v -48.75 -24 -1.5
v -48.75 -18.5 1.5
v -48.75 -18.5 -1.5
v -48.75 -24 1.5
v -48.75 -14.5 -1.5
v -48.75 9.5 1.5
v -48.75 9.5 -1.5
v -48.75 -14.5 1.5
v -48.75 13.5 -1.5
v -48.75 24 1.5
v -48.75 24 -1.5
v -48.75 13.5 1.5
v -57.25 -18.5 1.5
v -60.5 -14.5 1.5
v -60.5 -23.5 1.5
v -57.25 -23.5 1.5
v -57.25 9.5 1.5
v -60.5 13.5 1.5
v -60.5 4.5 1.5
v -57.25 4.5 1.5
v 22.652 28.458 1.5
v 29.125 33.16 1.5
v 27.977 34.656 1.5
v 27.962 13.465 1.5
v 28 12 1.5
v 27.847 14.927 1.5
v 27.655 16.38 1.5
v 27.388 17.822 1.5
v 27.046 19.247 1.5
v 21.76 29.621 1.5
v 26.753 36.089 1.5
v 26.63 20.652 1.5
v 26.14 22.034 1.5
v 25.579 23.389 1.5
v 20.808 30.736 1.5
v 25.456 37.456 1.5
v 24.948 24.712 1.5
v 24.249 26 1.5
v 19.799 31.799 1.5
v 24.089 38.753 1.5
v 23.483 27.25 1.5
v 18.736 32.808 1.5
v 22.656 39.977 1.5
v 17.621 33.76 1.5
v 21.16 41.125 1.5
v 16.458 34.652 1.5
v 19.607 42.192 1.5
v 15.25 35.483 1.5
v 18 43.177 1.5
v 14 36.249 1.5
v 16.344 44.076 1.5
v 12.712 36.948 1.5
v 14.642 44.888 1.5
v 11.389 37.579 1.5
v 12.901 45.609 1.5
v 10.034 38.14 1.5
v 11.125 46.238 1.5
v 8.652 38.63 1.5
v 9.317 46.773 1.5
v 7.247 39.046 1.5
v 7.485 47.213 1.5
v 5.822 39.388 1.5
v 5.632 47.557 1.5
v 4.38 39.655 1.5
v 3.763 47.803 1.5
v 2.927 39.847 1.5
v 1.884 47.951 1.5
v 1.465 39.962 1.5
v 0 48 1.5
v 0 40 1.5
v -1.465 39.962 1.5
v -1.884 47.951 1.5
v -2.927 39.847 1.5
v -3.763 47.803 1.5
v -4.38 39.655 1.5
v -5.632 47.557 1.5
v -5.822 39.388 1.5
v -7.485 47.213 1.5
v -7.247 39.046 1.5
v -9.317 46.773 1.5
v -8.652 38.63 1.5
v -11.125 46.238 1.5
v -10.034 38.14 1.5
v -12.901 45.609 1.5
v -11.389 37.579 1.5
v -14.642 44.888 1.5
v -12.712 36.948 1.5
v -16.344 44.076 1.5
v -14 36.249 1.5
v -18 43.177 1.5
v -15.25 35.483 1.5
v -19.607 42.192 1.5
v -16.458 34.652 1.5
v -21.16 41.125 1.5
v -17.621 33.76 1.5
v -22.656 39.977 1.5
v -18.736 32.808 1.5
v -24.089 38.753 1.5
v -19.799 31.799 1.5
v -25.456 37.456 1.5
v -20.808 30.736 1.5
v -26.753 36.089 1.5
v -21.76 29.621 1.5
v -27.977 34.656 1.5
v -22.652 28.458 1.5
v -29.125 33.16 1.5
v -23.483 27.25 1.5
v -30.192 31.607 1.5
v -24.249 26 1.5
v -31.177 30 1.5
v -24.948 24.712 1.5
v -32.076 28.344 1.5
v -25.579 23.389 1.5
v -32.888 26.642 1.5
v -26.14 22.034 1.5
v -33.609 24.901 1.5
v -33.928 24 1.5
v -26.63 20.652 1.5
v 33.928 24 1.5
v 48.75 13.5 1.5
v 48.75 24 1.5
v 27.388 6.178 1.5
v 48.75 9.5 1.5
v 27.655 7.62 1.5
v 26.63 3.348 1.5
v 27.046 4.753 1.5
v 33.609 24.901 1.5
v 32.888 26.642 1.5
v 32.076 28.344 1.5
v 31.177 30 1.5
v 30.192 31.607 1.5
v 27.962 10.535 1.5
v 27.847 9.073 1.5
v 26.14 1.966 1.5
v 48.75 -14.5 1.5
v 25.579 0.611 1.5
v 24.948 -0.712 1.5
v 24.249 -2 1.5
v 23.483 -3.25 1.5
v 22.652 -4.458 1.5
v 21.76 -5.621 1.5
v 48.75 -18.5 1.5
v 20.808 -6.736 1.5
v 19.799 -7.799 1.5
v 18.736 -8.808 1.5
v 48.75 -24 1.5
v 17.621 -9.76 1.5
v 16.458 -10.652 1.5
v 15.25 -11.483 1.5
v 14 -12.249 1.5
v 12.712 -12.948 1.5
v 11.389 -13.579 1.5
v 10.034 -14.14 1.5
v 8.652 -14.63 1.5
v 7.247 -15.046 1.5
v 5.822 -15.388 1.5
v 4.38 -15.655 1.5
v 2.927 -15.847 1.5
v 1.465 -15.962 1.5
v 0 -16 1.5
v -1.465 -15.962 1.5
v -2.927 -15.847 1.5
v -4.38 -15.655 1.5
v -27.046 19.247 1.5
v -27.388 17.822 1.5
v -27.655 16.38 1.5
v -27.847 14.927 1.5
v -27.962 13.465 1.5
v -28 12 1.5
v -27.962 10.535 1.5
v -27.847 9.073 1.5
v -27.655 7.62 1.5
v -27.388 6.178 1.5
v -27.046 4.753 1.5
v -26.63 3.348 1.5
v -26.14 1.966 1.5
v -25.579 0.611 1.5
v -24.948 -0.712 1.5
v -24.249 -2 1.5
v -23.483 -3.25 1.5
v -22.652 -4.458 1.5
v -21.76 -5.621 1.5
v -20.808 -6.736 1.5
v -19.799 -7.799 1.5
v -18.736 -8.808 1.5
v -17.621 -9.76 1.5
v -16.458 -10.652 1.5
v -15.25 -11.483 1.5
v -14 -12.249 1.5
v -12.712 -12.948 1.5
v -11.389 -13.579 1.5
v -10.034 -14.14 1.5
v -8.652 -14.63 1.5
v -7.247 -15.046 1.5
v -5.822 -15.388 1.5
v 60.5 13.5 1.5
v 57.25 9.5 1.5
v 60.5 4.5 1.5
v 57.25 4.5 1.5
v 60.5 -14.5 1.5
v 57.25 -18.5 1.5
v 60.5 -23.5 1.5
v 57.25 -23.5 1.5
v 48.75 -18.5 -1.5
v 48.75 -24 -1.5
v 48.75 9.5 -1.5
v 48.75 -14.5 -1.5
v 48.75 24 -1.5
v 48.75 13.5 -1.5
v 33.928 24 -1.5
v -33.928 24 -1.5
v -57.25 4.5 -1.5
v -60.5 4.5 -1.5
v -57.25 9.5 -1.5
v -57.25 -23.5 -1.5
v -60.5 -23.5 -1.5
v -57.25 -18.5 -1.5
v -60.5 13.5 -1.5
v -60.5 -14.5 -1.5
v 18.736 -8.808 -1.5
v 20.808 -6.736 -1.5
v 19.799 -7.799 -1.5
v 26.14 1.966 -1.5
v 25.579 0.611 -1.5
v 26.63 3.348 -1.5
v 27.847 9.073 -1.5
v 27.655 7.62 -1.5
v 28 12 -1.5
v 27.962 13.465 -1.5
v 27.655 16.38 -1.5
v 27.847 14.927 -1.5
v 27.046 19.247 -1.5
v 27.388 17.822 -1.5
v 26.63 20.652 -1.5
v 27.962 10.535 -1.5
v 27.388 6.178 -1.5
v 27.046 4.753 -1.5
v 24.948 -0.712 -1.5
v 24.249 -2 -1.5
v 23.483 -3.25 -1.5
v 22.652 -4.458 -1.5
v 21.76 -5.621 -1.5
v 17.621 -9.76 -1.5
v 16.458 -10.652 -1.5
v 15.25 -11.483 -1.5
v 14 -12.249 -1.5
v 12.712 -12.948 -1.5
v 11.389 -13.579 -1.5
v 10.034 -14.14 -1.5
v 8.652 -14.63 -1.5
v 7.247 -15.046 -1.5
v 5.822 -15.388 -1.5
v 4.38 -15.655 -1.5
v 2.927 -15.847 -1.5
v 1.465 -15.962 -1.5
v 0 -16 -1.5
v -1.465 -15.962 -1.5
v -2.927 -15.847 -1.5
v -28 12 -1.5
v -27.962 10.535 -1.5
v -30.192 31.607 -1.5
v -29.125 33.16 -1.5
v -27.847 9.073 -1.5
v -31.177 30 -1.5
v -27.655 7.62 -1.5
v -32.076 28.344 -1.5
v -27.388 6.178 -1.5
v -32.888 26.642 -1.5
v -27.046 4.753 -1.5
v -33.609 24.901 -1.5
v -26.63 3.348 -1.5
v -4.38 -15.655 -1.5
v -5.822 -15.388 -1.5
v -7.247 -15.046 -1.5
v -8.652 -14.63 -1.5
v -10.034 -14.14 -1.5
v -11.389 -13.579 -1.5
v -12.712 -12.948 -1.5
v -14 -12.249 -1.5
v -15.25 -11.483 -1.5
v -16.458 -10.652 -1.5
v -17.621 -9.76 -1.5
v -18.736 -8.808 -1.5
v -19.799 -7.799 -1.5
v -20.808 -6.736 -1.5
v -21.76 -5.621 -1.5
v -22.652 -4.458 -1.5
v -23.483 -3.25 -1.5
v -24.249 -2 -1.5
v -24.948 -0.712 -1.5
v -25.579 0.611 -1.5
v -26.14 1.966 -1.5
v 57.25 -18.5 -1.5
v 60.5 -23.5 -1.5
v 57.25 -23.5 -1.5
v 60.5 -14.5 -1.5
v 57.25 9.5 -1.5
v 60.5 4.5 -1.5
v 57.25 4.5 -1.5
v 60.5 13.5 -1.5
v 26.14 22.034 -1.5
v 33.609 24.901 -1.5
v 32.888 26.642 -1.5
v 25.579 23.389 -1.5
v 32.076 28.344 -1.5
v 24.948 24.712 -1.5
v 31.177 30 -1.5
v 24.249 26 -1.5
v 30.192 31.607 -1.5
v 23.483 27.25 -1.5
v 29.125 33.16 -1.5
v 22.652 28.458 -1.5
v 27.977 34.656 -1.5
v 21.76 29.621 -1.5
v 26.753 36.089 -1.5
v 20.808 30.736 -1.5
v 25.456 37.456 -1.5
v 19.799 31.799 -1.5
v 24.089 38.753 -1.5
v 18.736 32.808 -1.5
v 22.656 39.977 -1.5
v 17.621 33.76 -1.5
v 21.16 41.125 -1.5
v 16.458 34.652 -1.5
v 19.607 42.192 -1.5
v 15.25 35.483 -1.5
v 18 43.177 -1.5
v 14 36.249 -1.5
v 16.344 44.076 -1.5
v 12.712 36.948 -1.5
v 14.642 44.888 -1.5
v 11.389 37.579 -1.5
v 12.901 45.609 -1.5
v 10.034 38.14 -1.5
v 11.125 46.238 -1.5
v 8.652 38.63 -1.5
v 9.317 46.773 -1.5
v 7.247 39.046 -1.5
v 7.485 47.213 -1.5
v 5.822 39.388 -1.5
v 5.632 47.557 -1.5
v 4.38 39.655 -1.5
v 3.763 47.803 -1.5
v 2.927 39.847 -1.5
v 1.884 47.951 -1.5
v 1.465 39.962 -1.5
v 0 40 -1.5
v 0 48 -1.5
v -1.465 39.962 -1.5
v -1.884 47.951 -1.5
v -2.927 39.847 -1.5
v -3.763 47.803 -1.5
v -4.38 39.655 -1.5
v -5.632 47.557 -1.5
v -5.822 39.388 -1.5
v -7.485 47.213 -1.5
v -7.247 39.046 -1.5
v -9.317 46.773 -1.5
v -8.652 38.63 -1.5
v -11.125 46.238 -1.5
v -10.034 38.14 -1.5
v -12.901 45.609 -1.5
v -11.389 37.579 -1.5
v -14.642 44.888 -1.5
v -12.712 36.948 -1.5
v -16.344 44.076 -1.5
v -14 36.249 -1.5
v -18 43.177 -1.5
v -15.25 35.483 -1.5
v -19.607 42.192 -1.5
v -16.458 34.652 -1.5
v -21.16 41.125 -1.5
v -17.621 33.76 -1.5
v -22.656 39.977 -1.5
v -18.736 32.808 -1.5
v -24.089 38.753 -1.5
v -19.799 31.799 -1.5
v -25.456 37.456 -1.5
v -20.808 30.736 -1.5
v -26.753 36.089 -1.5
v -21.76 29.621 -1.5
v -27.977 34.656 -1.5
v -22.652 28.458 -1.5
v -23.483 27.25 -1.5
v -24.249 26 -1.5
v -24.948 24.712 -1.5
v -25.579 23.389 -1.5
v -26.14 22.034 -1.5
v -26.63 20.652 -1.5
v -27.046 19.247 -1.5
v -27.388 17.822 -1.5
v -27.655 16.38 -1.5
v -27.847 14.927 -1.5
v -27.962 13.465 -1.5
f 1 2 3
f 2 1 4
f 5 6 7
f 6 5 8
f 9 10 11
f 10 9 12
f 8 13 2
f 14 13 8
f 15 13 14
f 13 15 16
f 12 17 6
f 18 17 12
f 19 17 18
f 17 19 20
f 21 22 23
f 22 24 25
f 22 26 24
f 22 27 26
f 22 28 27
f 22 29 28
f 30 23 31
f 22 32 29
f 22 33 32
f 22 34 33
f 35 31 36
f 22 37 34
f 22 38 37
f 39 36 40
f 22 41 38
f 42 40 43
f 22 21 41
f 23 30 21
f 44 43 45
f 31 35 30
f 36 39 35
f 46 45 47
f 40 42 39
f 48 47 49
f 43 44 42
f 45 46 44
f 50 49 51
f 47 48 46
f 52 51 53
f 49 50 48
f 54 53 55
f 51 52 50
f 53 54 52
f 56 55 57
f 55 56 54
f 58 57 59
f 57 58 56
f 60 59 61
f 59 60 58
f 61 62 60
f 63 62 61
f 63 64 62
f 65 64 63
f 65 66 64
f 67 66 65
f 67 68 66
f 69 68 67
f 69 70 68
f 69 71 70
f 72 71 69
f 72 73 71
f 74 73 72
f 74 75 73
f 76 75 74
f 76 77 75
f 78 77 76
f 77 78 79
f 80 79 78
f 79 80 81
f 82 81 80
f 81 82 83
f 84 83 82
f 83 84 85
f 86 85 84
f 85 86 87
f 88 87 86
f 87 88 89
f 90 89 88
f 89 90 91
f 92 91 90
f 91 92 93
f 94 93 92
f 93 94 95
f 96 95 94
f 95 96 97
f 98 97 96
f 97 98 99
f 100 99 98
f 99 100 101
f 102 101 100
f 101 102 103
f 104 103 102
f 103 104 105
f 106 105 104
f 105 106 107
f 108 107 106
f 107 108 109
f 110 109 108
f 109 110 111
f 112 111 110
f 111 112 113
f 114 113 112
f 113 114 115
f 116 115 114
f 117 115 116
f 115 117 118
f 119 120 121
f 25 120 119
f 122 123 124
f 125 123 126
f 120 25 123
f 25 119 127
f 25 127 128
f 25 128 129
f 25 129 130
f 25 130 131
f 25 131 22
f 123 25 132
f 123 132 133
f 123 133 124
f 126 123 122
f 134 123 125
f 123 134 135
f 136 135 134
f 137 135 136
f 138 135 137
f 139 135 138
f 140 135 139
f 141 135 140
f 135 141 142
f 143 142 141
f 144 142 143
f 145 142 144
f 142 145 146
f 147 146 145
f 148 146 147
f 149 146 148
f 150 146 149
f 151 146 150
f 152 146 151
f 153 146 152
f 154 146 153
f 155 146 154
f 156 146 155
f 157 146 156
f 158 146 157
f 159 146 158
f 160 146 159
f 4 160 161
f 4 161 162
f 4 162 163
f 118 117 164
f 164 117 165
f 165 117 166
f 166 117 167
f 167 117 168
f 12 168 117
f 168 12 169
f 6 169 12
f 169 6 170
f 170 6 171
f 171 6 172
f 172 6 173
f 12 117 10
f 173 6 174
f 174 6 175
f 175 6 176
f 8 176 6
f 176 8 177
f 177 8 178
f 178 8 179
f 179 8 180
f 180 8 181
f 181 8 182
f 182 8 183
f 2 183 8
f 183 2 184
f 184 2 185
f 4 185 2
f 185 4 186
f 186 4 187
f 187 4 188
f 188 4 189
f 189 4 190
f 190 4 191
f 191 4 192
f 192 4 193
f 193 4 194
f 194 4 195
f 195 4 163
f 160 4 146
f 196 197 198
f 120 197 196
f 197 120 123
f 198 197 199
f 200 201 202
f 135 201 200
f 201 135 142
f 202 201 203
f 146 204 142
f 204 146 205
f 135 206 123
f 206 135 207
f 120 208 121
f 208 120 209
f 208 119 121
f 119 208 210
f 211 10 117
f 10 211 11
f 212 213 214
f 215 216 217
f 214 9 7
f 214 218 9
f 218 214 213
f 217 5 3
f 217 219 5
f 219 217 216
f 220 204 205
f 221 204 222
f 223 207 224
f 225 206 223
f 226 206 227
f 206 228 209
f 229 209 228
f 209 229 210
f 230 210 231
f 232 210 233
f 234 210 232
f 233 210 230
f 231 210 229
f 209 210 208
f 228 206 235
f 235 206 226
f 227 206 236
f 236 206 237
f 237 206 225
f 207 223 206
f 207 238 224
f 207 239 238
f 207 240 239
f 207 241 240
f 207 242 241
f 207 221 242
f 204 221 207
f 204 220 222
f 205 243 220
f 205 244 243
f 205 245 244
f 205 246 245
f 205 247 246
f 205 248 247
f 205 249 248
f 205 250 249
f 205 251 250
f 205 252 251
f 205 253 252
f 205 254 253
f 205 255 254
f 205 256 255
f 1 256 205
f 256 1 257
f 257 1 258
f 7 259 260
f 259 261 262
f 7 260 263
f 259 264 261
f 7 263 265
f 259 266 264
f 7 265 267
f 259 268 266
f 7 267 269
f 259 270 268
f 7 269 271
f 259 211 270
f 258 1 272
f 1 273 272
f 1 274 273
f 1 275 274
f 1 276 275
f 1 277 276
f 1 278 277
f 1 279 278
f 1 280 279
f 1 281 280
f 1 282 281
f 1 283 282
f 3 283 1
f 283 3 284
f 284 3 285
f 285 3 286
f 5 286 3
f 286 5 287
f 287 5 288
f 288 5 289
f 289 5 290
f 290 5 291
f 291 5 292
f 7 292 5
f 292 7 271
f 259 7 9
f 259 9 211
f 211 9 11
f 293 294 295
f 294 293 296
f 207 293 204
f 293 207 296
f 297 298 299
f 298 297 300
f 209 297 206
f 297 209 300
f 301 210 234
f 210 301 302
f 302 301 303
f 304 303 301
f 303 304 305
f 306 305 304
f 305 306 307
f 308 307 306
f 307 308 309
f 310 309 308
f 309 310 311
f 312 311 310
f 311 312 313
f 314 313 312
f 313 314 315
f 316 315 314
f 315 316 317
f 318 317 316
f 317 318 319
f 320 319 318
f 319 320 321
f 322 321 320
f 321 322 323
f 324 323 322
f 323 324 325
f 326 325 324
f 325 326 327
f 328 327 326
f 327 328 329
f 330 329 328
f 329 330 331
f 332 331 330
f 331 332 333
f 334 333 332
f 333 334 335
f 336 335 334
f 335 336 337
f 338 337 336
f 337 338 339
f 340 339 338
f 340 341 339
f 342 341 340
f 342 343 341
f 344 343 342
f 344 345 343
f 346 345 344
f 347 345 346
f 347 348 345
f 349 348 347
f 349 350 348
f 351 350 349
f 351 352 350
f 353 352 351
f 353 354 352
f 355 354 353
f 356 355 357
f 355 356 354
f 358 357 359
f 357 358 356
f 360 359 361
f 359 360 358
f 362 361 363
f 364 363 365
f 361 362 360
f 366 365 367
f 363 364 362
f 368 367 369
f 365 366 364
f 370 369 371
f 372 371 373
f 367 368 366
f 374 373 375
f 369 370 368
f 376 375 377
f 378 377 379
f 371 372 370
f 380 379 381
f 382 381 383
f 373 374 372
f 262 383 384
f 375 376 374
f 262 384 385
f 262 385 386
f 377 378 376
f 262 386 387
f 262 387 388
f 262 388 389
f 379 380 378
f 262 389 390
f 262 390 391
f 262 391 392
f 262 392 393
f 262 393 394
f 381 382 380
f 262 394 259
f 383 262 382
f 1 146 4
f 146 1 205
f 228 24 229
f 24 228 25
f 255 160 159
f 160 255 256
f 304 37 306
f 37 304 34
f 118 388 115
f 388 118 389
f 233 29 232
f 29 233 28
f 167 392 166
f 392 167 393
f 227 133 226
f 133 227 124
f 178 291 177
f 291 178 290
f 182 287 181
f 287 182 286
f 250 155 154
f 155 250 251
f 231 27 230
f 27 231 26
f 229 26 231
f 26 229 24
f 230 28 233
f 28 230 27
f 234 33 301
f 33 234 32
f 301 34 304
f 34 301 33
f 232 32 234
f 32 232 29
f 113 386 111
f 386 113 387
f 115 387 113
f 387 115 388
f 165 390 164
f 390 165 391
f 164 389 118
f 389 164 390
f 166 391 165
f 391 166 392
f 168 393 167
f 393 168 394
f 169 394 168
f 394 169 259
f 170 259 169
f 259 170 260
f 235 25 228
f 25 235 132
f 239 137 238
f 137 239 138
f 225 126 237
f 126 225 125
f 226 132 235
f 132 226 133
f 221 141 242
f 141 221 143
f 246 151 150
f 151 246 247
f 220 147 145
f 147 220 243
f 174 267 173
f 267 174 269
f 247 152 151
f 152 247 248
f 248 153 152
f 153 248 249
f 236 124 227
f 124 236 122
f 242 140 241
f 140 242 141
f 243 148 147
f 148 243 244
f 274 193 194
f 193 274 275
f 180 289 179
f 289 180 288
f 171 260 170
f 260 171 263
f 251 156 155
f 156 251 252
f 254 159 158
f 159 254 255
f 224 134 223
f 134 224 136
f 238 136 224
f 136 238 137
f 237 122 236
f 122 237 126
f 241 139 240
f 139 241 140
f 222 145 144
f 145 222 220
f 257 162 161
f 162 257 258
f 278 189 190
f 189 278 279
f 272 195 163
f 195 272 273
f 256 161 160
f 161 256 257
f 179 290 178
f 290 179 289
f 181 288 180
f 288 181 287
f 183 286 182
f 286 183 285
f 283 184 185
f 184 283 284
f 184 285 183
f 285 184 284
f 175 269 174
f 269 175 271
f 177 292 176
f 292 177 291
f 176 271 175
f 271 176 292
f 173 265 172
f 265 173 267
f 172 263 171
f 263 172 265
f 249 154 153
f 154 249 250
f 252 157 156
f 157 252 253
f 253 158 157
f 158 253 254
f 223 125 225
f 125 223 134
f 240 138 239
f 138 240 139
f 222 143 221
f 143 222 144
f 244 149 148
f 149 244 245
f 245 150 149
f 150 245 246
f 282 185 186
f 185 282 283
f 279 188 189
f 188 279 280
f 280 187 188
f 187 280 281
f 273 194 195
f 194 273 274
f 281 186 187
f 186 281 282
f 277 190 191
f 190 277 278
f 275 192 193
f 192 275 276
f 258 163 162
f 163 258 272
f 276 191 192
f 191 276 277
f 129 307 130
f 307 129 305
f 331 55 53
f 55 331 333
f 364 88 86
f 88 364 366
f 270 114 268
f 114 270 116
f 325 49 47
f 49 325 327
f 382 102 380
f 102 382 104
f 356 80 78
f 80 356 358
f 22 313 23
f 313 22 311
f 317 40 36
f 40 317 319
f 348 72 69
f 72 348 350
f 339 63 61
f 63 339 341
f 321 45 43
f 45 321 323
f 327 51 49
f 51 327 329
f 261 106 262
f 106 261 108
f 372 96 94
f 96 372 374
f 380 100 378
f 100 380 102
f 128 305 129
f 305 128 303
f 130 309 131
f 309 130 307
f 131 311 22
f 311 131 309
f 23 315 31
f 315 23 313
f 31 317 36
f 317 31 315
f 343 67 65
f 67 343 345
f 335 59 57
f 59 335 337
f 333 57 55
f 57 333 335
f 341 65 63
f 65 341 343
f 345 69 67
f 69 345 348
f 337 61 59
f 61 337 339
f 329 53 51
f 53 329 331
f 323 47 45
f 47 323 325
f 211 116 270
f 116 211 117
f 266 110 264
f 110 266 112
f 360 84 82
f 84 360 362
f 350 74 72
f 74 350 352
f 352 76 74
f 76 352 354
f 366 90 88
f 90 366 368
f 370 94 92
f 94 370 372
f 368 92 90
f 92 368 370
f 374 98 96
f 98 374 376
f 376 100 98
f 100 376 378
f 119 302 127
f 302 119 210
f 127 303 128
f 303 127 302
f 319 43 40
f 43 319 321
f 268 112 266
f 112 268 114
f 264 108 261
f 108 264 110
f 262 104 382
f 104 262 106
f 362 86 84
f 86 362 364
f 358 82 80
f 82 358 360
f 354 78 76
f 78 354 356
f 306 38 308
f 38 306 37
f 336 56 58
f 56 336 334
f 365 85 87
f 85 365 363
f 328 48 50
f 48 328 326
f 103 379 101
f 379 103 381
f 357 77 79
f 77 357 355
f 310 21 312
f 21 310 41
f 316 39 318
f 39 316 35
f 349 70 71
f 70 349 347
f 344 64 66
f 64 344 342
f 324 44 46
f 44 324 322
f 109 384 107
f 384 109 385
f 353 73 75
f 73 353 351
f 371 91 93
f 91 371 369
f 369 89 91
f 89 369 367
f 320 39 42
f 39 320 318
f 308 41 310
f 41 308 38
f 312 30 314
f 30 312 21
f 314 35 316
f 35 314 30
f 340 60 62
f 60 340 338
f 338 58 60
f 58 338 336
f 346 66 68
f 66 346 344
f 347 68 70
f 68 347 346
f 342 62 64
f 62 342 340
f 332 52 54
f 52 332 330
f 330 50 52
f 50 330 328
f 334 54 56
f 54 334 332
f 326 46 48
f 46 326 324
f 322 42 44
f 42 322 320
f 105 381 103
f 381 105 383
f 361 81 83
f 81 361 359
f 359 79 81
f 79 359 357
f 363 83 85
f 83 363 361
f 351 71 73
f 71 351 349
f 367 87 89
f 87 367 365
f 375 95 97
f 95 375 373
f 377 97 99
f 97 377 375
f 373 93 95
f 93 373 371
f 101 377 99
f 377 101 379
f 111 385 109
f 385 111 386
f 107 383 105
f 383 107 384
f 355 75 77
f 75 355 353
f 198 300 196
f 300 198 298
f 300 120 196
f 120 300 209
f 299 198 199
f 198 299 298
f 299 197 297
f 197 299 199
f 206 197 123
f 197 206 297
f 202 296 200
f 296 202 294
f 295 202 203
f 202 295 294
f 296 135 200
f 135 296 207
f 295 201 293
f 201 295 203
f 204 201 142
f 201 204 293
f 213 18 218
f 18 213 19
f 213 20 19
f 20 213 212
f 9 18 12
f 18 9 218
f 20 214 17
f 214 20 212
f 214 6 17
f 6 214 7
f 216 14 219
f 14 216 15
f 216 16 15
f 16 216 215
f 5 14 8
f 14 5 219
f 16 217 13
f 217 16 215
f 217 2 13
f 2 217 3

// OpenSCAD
$fn=120;
difference(){
	 box=[97.5,48,3];
     cube(box,true);
     translate([0,12,-1.5])cylinder(r=28,h=3);
}
difference(){
     translate([0,12,-1.5])cylinder(r=36,h=3);
     translate([0,12,-1.5])cylinder(r=28,h=3);
}
difference(){
     translate([54.5,9,0])cube([12,9,3],true);
     translate([53,7,0])cube([8.5,5,3],true);
}
difference(){
     translate([54.5,-19,0])cube([12,9,3],true);
     translate([53,-21,0])cube([8.5,5,3],true);
}
difference(){
     translate([-54.5,9,0])cube([12,9,3],true);
     translate([-53,7,0])cube([8.5,5,3],true);
}
difference(){
     translate([-54.5,-19,0])cube([12,9,3],true);
     translate([-53,-21,0])cube([8.5,5,3],true);
}
